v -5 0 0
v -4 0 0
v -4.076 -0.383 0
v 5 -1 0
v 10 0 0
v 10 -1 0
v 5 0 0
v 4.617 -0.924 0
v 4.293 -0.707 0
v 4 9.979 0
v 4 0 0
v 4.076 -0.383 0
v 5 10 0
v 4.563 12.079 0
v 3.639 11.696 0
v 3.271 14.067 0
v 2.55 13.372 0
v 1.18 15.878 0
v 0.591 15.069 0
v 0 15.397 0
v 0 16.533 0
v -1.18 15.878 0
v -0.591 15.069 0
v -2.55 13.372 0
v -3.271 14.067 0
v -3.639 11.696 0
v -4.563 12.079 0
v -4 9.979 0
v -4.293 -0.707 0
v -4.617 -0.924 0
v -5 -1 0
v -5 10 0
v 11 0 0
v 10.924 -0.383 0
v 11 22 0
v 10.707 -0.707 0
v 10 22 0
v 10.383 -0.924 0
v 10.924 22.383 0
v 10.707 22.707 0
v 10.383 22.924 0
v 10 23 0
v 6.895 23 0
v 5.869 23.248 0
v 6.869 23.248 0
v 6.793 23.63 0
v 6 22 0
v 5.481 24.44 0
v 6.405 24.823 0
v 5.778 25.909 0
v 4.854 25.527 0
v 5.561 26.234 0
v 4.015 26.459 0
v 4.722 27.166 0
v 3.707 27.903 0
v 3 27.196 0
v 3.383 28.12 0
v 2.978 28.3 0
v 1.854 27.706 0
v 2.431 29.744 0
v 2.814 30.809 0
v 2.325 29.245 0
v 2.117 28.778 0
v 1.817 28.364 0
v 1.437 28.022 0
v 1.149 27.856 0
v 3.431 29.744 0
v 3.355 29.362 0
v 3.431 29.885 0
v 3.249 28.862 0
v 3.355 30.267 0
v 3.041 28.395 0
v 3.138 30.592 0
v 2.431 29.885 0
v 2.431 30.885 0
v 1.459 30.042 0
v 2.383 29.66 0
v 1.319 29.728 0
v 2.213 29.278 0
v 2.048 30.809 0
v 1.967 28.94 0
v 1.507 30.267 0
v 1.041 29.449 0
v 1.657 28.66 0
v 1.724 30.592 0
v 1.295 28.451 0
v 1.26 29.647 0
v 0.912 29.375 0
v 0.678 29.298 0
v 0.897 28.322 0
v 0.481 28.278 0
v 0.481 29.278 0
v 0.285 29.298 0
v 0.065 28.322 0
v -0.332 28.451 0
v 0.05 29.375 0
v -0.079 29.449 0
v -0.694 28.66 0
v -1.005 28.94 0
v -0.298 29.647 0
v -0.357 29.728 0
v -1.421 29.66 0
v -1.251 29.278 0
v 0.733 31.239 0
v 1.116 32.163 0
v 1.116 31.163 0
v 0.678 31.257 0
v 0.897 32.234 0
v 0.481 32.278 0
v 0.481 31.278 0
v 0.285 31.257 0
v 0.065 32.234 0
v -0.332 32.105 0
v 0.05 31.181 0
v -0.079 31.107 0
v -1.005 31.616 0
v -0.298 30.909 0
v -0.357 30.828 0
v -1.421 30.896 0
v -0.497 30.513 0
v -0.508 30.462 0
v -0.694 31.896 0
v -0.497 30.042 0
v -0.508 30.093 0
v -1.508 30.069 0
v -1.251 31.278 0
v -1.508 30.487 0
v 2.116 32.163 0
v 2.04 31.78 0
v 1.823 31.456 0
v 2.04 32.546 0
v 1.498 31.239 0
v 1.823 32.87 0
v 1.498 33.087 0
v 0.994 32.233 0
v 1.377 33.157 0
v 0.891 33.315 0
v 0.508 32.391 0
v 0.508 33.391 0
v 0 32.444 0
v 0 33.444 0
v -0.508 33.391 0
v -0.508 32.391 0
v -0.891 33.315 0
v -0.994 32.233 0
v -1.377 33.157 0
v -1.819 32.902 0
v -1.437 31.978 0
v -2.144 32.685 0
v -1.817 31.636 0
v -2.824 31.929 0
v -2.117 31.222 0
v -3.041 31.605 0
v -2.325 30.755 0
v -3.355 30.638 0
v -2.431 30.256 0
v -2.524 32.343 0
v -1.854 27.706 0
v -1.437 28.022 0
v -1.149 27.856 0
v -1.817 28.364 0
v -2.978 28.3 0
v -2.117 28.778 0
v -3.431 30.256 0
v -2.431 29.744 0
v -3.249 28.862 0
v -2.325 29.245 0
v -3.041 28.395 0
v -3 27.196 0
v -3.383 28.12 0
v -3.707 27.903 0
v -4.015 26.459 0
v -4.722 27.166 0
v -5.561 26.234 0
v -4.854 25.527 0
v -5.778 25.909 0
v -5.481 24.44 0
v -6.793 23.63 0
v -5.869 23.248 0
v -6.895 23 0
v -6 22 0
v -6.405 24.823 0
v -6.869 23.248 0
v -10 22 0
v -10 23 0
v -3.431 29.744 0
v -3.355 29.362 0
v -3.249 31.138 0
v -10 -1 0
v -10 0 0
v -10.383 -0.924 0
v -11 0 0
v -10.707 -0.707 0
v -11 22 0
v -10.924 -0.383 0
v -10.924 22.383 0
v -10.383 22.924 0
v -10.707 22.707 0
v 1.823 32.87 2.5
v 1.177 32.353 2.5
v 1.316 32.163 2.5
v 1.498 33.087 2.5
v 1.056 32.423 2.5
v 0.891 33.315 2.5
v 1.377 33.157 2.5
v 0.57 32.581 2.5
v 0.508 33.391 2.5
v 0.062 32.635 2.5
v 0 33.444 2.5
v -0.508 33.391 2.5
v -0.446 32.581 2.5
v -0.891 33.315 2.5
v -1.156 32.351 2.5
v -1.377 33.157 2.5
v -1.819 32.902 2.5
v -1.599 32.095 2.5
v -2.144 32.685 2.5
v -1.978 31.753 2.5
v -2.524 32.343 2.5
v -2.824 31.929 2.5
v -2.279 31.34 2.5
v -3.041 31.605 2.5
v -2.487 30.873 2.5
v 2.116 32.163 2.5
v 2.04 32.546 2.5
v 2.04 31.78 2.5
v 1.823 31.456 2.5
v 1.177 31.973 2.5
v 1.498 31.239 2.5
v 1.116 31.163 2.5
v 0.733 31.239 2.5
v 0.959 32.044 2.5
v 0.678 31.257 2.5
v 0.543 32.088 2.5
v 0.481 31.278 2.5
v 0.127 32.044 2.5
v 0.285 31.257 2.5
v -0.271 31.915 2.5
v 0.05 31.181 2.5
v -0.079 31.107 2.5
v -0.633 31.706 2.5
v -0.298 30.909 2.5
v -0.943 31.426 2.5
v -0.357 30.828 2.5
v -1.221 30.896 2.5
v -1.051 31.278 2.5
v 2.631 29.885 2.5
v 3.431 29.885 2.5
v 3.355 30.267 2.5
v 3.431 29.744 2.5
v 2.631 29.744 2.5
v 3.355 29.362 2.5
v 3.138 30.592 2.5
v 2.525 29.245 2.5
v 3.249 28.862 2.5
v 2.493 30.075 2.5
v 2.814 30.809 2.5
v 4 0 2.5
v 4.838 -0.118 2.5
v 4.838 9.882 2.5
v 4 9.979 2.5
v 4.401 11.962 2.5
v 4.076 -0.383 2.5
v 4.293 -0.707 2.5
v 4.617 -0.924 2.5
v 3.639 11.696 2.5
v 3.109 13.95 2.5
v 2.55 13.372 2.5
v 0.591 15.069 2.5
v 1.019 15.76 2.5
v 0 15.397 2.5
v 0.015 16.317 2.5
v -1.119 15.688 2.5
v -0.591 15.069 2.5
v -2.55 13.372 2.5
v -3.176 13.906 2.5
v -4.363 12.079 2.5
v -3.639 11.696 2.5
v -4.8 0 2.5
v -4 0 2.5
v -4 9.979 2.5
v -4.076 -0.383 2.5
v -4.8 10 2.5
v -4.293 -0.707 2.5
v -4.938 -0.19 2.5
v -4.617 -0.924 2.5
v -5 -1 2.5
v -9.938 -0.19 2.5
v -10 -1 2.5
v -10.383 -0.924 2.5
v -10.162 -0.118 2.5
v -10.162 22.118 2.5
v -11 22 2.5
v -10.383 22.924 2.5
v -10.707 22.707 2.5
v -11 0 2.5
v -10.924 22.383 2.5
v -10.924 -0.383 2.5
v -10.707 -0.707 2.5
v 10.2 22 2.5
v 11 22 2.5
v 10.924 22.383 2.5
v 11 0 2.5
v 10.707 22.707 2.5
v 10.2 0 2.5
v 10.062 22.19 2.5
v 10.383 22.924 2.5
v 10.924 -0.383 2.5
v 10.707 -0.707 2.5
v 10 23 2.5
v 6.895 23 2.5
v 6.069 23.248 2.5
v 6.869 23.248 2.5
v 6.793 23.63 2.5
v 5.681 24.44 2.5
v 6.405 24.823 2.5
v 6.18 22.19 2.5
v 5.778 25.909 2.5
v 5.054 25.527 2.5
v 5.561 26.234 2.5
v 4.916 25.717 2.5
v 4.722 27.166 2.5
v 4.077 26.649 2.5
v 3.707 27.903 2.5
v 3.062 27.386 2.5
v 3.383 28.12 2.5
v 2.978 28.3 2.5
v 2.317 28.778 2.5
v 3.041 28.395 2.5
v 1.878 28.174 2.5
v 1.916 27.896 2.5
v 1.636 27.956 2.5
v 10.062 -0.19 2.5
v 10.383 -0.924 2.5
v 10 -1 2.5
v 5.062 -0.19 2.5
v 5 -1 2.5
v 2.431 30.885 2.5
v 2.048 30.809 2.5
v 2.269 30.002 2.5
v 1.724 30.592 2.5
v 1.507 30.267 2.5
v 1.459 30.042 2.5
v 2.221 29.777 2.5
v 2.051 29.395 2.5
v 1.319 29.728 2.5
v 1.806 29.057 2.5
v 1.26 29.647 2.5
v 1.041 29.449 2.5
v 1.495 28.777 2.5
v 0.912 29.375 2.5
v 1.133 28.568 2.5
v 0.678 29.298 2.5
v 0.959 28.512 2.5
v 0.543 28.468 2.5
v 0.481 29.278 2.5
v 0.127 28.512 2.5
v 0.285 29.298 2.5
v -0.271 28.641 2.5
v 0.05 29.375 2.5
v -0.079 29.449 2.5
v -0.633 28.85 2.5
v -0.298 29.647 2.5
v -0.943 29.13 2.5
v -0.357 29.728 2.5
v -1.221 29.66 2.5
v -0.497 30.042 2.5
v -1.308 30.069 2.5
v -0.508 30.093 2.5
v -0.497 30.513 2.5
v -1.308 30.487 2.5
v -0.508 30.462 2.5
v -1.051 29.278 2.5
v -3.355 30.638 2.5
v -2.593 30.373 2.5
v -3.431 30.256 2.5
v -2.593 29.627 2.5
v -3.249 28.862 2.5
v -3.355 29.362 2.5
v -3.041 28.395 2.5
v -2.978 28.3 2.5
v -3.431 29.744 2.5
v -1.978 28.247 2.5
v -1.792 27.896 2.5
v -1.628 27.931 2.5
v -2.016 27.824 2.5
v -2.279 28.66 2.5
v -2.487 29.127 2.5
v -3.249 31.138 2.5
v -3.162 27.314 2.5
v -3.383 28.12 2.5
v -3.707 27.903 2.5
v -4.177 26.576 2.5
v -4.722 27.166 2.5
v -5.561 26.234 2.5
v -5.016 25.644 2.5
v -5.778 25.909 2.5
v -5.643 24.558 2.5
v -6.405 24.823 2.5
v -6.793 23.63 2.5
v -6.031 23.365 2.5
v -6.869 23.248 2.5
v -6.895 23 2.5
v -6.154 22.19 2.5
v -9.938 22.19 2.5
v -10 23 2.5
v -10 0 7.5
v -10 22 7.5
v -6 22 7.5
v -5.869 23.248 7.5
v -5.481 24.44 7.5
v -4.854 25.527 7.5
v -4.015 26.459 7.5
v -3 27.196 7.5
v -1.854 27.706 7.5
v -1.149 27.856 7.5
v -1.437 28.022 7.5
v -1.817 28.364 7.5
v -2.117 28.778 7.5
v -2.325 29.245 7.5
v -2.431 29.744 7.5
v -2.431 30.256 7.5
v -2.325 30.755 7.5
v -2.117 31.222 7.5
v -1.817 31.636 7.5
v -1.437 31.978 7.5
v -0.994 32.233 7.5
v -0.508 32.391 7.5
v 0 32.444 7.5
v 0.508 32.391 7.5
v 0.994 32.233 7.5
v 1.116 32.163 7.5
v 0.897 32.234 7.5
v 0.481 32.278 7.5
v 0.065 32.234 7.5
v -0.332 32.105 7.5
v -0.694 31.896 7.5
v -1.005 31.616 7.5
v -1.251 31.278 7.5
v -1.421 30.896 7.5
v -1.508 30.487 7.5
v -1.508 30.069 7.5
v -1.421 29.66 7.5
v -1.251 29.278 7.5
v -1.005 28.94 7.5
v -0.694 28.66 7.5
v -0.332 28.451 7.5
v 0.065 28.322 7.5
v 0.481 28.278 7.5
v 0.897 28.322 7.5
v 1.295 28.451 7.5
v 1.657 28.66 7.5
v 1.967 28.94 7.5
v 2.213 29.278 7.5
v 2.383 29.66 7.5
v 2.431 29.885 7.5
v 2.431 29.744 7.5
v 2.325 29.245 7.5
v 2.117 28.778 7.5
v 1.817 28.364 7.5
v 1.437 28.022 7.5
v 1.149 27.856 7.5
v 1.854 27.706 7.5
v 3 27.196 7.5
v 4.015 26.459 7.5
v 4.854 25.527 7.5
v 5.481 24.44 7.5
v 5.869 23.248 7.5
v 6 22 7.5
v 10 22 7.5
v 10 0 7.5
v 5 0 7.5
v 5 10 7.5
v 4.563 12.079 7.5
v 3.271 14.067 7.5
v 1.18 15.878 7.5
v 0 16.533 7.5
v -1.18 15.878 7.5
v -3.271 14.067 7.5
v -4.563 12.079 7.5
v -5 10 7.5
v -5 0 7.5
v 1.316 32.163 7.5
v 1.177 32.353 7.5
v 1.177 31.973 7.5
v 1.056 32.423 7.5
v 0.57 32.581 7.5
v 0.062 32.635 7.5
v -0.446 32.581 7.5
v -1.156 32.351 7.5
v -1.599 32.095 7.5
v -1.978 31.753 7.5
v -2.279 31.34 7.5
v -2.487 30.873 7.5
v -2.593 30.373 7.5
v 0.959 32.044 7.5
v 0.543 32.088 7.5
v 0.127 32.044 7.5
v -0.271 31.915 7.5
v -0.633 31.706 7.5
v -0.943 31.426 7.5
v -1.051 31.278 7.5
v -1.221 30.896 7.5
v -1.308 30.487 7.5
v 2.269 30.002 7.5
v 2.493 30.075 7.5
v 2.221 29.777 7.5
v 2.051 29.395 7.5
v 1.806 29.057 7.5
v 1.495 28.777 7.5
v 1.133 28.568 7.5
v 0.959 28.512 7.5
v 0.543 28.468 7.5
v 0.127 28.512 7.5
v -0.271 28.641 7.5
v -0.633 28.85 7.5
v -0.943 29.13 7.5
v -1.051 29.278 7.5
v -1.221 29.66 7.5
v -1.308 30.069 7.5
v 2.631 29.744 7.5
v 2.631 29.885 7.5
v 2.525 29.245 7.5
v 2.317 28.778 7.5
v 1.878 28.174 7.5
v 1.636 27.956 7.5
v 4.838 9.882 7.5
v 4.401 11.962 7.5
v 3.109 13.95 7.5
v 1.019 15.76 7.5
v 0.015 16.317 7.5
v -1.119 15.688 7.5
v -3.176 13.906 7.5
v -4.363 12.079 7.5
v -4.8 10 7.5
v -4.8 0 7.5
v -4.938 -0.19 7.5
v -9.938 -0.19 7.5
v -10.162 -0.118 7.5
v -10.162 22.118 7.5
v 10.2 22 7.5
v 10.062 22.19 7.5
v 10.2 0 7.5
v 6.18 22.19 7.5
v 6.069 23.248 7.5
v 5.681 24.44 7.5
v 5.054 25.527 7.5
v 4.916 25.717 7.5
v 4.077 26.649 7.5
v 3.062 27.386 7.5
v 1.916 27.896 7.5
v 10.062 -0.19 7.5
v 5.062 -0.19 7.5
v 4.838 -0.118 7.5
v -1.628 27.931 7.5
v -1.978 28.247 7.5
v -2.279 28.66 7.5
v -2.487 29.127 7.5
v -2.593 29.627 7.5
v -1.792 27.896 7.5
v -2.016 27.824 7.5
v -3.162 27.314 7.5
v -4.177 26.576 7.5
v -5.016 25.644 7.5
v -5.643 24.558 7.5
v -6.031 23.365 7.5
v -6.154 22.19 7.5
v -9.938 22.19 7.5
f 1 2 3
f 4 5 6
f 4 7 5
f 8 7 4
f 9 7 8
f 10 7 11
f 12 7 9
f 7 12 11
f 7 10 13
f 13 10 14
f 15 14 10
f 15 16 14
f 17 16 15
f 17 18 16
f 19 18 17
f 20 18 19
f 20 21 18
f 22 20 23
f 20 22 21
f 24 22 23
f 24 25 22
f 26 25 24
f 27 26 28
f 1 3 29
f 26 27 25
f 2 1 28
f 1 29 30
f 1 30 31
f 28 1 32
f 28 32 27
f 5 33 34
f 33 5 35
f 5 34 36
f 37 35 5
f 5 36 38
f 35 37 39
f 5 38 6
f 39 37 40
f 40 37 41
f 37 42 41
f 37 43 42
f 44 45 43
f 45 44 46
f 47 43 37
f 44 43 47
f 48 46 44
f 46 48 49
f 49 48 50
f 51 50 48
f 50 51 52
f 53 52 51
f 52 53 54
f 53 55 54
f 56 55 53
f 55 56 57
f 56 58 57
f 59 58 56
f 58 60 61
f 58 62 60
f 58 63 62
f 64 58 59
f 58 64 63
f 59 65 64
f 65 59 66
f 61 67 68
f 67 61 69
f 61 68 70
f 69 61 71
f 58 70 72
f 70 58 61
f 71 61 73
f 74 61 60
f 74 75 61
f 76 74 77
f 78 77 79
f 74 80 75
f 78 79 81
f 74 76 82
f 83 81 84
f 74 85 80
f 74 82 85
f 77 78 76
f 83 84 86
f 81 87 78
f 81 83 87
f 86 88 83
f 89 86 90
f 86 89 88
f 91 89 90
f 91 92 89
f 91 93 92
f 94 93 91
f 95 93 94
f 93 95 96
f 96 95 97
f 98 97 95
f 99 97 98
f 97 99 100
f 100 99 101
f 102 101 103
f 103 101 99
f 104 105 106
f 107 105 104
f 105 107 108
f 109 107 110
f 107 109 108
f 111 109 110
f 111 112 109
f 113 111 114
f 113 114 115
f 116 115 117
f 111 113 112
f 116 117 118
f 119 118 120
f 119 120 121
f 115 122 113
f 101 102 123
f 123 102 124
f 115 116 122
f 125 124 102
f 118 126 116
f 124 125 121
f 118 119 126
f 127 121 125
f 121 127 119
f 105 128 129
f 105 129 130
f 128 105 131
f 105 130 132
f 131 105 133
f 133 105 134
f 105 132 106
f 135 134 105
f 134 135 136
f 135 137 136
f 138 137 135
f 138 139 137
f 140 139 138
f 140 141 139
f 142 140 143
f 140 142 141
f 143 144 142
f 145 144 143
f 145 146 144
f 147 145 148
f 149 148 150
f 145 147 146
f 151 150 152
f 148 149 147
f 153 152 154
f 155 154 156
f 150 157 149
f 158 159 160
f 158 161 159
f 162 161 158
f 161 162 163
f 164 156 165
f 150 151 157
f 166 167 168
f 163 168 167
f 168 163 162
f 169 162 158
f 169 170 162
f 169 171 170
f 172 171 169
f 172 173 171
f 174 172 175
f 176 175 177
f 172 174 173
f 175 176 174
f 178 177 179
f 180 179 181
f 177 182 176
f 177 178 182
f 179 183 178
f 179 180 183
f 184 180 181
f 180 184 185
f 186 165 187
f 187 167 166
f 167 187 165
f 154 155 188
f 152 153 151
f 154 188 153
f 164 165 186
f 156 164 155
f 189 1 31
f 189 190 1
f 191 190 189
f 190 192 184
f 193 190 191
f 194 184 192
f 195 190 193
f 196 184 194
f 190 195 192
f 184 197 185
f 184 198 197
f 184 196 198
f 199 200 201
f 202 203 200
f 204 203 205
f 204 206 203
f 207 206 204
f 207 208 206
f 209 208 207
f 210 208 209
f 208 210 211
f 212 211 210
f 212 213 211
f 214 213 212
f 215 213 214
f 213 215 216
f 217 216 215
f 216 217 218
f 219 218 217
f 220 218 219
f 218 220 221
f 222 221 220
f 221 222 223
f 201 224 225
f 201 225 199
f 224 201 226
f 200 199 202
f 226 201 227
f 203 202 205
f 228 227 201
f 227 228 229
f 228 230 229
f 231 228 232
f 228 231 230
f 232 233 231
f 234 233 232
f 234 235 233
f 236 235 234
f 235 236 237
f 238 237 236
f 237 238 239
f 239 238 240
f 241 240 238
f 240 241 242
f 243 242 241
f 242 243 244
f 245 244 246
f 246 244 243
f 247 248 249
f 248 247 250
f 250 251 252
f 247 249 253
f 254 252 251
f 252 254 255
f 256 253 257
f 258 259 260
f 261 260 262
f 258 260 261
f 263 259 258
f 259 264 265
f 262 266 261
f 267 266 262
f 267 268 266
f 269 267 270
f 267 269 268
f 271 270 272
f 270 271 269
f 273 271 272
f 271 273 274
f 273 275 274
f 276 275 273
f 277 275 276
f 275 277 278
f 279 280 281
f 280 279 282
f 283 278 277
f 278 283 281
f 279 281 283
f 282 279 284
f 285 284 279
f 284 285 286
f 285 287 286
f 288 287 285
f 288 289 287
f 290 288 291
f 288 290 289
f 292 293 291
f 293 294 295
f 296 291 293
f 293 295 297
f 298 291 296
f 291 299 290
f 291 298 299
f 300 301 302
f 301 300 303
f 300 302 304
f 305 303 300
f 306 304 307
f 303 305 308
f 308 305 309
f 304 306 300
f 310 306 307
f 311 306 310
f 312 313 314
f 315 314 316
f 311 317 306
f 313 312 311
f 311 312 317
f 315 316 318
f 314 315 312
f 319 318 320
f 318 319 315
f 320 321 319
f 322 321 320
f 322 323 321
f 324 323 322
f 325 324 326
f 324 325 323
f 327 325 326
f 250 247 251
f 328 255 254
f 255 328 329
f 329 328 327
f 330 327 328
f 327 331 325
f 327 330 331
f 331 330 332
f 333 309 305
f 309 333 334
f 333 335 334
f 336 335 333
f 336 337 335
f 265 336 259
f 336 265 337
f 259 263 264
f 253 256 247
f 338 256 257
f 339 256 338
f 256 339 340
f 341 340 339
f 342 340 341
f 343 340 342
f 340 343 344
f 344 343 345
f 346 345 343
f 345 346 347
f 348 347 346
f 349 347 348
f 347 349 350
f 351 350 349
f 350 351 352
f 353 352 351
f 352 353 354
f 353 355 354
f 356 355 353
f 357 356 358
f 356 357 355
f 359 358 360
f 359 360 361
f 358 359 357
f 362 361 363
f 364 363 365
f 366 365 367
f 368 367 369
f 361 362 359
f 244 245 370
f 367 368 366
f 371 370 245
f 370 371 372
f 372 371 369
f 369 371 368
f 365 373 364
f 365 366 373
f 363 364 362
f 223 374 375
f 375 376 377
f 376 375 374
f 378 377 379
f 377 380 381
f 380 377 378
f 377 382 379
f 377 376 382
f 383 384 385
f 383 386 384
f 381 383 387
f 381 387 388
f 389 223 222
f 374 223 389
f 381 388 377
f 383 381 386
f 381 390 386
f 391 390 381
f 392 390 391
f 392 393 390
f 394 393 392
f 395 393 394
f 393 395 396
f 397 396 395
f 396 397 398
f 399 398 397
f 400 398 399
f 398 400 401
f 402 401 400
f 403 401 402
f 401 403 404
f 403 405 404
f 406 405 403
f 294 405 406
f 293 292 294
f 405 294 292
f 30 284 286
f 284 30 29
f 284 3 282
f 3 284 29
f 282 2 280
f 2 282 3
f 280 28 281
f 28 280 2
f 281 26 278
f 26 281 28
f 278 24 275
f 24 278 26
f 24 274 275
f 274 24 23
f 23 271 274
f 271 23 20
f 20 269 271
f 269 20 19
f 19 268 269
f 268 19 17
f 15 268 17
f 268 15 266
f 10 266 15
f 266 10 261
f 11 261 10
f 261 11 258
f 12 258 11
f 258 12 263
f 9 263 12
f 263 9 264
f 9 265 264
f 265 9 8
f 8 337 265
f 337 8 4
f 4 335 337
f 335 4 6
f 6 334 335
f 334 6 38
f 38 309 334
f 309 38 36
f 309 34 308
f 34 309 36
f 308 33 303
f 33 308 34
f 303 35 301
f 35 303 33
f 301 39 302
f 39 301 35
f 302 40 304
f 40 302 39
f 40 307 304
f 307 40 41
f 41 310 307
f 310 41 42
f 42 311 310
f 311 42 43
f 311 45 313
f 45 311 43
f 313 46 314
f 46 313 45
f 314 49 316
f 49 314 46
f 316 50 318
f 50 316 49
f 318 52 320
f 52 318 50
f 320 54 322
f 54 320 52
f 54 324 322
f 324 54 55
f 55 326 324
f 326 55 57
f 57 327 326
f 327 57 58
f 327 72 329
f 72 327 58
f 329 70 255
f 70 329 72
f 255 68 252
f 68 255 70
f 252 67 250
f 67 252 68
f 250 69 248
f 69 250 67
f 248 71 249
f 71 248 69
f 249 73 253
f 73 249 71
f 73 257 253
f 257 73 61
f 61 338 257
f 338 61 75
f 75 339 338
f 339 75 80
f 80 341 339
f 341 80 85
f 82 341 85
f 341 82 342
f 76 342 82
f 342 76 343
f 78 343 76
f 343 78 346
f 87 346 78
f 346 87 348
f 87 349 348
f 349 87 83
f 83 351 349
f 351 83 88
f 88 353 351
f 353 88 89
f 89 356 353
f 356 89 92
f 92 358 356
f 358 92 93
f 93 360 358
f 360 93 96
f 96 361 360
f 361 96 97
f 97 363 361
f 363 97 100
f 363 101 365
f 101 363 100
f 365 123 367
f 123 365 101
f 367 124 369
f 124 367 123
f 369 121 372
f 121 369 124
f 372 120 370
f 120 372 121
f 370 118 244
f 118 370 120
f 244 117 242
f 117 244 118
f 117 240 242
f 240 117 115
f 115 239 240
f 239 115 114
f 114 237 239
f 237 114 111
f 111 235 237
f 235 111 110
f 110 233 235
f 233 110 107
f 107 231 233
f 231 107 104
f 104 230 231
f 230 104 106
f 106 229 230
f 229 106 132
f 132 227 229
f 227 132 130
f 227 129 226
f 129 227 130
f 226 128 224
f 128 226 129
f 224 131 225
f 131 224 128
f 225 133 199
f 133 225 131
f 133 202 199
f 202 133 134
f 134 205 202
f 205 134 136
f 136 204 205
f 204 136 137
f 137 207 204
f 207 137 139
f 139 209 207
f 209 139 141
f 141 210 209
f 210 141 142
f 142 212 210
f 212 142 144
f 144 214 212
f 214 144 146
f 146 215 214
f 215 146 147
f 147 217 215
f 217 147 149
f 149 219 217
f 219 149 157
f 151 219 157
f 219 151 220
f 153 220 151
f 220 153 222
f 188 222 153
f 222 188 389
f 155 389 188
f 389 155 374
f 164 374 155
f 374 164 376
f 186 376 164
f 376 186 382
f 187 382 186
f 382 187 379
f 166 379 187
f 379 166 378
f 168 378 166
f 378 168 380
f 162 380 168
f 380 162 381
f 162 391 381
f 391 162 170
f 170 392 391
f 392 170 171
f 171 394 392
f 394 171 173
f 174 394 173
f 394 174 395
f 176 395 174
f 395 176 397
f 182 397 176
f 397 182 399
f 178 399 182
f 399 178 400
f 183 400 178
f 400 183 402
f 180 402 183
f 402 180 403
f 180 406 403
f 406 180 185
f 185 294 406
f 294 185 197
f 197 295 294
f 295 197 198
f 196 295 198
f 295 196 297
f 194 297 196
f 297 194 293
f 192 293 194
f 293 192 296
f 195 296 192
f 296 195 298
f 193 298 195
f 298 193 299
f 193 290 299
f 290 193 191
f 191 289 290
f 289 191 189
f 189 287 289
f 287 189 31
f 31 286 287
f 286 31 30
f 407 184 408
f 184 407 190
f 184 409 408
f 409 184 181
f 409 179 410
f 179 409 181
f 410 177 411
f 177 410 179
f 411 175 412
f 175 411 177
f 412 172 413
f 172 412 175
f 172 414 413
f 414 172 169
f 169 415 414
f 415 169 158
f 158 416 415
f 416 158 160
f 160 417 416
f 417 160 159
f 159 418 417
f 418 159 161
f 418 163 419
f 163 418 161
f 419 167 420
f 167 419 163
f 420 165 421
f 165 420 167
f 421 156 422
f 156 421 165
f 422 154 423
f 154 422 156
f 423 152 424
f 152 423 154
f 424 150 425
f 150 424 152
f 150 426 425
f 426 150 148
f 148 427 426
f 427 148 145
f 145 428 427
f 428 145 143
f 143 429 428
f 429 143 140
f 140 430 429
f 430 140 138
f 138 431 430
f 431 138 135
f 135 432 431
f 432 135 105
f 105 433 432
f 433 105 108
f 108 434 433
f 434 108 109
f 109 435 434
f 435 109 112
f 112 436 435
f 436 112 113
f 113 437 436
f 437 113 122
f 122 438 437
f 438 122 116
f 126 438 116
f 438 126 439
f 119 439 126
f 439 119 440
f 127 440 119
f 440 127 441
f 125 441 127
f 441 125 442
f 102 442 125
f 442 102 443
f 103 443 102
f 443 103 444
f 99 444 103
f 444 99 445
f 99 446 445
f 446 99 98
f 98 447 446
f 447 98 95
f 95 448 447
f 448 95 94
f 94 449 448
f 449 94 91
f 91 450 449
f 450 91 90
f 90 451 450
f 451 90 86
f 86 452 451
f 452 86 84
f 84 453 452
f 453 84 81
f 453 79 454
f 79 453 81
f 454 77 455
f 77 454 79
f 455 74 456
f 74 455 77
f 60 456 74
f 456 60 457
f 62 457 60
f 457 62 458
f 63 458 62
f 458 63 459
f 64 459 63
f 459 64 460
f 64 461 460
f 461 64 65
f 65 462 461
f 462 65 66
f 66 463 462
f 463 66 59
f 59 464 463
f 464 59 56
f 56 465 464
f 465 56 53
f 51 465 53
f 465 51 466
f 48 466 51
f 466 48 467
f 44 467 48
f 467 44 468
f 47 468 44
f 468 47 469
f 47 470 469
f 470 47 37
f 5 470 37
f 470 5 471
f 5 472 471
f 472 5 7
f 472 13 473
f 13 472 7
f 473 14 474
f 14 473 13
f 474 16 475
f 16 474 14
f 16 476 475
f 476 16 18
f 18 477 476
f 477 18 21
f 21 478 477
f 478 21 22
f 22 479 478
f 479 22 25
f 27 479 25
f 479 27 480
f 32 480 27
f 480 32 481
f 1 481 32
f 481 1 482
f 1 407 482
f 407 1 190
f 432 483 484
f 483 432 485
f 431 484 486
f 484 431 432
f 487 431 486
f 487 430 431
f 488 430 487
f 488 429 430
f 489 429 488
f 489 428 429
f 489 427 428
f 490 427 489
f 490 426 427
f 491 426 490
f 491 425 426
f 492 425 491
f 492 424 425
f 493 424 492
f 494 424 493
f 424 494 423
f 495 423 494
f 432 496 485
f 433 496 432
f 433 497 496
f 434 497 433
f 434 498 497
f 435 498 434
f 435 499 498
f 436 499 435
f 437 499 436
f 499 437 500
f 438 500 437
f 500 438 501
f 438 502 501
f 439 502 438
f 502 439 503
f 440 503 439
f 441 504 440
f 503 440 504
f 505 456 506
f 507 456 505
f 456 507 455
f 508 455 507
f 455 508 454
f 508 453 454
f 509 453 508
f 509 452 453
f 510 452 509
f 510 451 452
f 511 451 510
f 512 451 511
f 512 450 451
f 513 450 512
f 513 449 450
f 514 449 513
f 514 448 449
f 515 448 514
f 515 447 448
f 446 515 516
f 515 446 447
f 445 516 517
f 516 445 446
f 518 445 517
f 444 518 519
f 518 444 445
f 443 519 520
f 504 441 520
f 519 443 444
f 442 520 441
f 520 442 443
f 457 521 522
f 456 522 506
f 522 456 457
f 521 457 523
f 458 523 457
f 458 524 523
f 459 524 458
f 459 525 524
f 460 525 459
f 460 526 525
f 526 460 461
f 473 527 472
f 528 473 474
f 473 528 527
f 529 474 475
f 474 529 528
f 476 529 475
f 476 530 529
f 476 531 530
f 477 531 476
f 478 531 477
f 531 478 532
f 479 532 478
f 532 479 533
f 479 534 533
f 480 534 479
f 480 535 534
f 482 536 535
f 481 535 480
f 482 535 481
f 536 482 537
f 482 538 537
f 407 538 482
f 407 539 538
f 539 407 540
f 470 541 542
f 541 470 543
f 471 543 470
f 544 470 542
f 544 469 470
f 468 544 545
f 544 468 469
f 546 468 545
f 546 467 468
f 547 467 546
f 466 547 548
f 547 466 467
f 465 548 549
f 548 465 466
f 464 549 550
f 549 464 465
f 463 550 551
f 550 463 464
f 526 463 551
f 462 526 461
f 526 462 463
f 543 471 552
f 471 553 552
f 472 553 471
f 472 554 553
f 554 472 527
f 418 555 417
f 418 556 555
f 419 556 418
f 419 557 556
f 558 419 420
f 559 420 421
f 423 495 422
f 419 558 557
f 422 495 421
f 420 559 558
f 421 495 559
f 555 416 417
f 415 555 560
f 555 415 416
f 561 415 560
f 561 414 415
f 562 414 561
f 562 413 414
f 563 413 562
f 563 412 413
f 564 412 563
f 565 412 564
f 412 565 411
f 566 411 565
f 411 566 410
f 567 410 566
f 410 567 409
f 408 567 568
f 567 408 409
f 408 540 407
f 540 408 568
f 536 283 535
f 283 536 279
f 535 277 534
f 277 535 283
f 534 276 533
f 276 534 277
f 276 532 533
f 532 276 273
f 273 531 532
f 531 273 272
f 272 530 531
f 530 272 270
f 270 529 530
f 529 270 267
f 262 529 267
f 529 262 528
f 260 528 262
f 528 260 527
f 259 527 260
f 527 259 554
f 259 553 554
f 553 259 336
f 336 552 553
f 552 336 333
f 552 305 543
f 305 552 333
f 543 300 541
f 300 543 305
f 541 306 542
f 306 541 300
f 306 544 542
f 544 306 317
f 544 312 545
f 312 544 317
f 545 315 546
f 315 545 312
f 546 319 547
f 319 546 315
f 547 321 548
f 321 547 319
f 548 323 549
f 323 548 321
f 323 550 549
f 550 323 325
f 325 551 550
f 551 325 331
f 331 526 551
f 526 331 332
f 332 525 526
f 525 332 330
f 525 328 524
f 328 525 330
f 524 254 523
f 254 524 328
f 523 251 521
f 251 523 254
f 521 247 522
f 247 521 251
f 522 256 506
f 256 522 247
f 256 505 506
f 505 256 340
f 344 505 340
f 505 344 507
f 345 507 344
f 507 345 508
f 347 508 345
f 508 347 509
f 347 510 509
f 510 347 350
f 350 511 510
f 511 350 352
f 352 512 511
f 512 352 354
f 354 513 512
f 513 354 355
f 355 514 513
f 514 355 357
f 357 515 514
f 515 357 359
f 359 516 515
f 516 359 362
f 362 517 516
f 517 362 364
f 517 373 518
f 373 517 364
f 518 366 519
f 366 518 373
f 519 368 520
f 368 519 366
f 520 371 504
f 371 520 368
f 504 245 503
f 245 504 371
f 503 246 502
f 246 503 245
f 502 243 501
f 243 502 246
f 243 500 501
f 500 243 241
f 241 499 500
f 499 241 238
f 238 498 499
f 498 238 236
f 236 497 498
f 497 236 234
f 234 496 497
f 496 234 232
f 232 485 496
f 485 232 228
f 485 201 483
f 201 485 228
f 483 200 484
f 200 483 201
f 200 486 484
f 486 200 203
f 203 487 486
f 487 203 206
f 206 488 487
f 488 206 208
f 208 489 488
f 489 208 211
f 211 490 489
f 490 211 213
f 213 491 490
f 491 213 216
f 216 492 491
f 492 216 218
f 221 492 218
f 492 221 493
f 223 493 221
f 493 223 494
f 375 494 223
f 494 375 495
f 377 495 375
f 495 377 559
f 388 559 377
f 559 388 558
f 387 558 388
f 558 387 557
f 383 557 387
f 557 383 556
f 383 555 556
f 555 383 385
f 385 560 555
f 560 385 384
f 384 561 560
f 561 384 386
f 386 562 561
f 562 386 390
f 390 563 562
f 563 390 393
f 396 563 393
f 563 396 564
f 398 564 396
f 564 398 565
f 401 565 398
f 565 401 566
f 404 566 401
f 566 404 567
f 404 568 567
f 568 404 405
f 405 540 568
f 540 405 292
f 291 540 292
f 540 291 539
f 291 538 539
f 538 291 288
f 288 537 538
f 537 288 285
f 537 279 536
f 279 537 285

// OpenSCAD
// file: ComplexShapes.scad
include <BasicShapes.scad>

module HalfCylinder(r, h, e=1, center=false) {
    translate([0,0, center ? -h/2 : 0])difference(){
        cylinder(h,r,r);
        translate([0,-r,-e])cube([2*r,2*r,h+2*e]);
    }
}

module HalfCircle(r) {
    difference(){
        circle(r);
        translate([-r,-2*r,0]) square(2*r);
    }
}

module Crescent(r, fatten_scale=1, curve_angle=0, rotate=0) {
    r_prime = r / fatten_scale;
    rotate([0,0,rotate]) difference() {
        circle(r_prime*1.1);
        translate([r_prime/4, curve_angle*r_prime/4, 0]) circle(r_prime*fatten_scale);
    }
}

//module Arch(x,y,r) {
//    // http://kitwallace.co.uk/Blog/item/2013-01-28T17:59:00Z
//    union() {
//        intersection() {
//           translate([x,y,0]) circle(r);
//           translate([-x,y,0]) circle(r);
//        }
//        translate([0,y/2,0]) square(size=[2 * (r-x), y], center=true);
//    }
//}

module Arch(width, arc_height, strech_height=0) {
    // http://kitwallace.co.uk/Blog/item/2013-01-28T17:59:00Z
    r = arc_height;
    x = (width / 2) - r;
    y = arc_height + strech_height;
    union() {
        intersection() {
           translate([x,y,0]) circle(r);
           translate([-x,y,0]) circle(r);
        }
        translate([0,y/2,0]) square(size=[width, y], center=true);
    }
}
// file: BasicShapes.scad
module Star(points, outer, inner_defaulted=0) {
    inner = inner_defaulted == 0 ? 2 * outer  : inner_defaulted;
	// polar to cartesian: radius/angle to x/y
	function x(r, a) = r * cos(a);
	function y(r, a) = r * sin(a);
	
	// angular width of each pie slice of the star
	increment = 360/points;
	
	union() {
		for (p = [0 : points-1]) {
			
			// outer is outer point p
			// inner is inner point following p
			// next is next outer point following p

			assign(	
                x_outer = x(outer, increment * p),
                y_outer = y(outer, increment * p),
                x_inner = x(inner, (increment * p) + (increment/2)),
                y_inner = y(inner, (increment * p) + (increment/2)),
                x_next  = x(outer, increment * (p+1)),
                y_next  = y(outer, increment * (p+1))
            ) {
				polygon(
                    points = [
                        [x_outer, y_outer], 
                        [x_inner, y_inner],
                        [x_next, y_next], 
                        [0, 0]
                    ], 
                    paths  = [[0, 1, 2, 3]]
                );
			}
		}
	}
}

//https://github.com/openscad/MCAD/blob/master/shapes.scad
module Hexagon(size) {
  Star(3, size, size);
}

module Octagon(size) {
  Star(4, size, size);
}
// main file
include <BasicShapes.scad>
include <ComplexShapes.scad>

//https://www.etsy.com/listing/770065287/professional-quality-mosque-cookie?gpla=1&gao=1&&utm_source=google&utm_medium=cpc&utm_campaign=shopping_us_d-craft_supplies_and_tools-kitchen_supplies-kitchen_tools_and_utensils-cookie_cutters&utm_custom1=e12205a9-1426-4d66-9c46-fd49f0a70718&utm_content=go_1843970773_68900286679_346362959724_pla-295472669507_c__770065287&utm_custom2=1843970773&gclid=EAIaIQobChMI5bb_z6re6AIVGKSzCh3zTwPnEAQYBCABEgKdEPD_BwE


// How do I make a shell???
// Apporach 1 ... manually trying to strech an image ...
//module MosqueShell(width, shell_thickness=0.05) {
//
//    difference() {
//        scale([1.05,1.05,1]) translate([0,0,0]) Mosque(width, 0.2, 2.0);
//        translate([0,1,0]) Mosque(width, door_scale=.24, crescent_scale=1.25, crescent_rotation=17.5);
//
//   }
//} 
// Approach 2 ... doing this ...
// https://cubehero.com/2013/12/31/creating-cookie-cutters-using-offsets-in-openscad/

module Door() {    
    difference(){
        translate([ 0,0,0])color("green")Arch(13, 13);
        translate([ 0,0.5,0])Arch(12, 12);
    }
}

module Mosque(width, door_scale=0.25, door_stretch=0, crescent_scale=1, crescent_rotation=0) {
    crescent_size = width/10;
    arc_factor = width/2;

    square_height =  width+(width/10);
    crescent_height = crescent_size;
    arc_height = 1.5*width/5 ;
    total_height = square_height + arc_height + crescent_height;
    echo(total_height, width, total_height/width);
    
    union() {
        translate([0,square_height+arc_height+crescent_height,0]) 
            Crescent(crescent_size, crescent_scale, rotate=crescent_rotation);
        difference() {
            translate([-width/2,0,0])square([width, width+(width/10)]);
            scale([2,1,1]) Arch(width*door_scale,2*width*door_scale, door_stretch);
        }
        translate([0,square_height,0]) scale([1.5,1.5,1]) HalfCircle(width/5);
    }
}

module offset_shell(thickness = 0.1) {
  render() {
      difference() {
          minkowski() {
            children();
            circle(2* thickness, center=true);
          }
        children();
      }
   }
}

union() {
    linear_extrude(height = 2.5, slices = 60) { 
        scale([.2,.2,1]) {
            offset_shell(2.5) {
              Mosque(100, crescent_scale=0.9, crescent_rotation=30);
            }
        }
    };
    linear_extrude(height = 7.5, slices = 60) translate([0,0,2]) scale([.2,.2,1]) {
      offset_shell(0.5) {
          Mosque(100, crescent_scale=0.9, crescent_rotation=30);
        }
    };
}

//
//module test(thickness = 0.1) {
//     minkowski() {
//            children();
//            circle([2 * thickness, 2 * thickness], center=true);
//          }
//}
//    
////Mosque(20);
